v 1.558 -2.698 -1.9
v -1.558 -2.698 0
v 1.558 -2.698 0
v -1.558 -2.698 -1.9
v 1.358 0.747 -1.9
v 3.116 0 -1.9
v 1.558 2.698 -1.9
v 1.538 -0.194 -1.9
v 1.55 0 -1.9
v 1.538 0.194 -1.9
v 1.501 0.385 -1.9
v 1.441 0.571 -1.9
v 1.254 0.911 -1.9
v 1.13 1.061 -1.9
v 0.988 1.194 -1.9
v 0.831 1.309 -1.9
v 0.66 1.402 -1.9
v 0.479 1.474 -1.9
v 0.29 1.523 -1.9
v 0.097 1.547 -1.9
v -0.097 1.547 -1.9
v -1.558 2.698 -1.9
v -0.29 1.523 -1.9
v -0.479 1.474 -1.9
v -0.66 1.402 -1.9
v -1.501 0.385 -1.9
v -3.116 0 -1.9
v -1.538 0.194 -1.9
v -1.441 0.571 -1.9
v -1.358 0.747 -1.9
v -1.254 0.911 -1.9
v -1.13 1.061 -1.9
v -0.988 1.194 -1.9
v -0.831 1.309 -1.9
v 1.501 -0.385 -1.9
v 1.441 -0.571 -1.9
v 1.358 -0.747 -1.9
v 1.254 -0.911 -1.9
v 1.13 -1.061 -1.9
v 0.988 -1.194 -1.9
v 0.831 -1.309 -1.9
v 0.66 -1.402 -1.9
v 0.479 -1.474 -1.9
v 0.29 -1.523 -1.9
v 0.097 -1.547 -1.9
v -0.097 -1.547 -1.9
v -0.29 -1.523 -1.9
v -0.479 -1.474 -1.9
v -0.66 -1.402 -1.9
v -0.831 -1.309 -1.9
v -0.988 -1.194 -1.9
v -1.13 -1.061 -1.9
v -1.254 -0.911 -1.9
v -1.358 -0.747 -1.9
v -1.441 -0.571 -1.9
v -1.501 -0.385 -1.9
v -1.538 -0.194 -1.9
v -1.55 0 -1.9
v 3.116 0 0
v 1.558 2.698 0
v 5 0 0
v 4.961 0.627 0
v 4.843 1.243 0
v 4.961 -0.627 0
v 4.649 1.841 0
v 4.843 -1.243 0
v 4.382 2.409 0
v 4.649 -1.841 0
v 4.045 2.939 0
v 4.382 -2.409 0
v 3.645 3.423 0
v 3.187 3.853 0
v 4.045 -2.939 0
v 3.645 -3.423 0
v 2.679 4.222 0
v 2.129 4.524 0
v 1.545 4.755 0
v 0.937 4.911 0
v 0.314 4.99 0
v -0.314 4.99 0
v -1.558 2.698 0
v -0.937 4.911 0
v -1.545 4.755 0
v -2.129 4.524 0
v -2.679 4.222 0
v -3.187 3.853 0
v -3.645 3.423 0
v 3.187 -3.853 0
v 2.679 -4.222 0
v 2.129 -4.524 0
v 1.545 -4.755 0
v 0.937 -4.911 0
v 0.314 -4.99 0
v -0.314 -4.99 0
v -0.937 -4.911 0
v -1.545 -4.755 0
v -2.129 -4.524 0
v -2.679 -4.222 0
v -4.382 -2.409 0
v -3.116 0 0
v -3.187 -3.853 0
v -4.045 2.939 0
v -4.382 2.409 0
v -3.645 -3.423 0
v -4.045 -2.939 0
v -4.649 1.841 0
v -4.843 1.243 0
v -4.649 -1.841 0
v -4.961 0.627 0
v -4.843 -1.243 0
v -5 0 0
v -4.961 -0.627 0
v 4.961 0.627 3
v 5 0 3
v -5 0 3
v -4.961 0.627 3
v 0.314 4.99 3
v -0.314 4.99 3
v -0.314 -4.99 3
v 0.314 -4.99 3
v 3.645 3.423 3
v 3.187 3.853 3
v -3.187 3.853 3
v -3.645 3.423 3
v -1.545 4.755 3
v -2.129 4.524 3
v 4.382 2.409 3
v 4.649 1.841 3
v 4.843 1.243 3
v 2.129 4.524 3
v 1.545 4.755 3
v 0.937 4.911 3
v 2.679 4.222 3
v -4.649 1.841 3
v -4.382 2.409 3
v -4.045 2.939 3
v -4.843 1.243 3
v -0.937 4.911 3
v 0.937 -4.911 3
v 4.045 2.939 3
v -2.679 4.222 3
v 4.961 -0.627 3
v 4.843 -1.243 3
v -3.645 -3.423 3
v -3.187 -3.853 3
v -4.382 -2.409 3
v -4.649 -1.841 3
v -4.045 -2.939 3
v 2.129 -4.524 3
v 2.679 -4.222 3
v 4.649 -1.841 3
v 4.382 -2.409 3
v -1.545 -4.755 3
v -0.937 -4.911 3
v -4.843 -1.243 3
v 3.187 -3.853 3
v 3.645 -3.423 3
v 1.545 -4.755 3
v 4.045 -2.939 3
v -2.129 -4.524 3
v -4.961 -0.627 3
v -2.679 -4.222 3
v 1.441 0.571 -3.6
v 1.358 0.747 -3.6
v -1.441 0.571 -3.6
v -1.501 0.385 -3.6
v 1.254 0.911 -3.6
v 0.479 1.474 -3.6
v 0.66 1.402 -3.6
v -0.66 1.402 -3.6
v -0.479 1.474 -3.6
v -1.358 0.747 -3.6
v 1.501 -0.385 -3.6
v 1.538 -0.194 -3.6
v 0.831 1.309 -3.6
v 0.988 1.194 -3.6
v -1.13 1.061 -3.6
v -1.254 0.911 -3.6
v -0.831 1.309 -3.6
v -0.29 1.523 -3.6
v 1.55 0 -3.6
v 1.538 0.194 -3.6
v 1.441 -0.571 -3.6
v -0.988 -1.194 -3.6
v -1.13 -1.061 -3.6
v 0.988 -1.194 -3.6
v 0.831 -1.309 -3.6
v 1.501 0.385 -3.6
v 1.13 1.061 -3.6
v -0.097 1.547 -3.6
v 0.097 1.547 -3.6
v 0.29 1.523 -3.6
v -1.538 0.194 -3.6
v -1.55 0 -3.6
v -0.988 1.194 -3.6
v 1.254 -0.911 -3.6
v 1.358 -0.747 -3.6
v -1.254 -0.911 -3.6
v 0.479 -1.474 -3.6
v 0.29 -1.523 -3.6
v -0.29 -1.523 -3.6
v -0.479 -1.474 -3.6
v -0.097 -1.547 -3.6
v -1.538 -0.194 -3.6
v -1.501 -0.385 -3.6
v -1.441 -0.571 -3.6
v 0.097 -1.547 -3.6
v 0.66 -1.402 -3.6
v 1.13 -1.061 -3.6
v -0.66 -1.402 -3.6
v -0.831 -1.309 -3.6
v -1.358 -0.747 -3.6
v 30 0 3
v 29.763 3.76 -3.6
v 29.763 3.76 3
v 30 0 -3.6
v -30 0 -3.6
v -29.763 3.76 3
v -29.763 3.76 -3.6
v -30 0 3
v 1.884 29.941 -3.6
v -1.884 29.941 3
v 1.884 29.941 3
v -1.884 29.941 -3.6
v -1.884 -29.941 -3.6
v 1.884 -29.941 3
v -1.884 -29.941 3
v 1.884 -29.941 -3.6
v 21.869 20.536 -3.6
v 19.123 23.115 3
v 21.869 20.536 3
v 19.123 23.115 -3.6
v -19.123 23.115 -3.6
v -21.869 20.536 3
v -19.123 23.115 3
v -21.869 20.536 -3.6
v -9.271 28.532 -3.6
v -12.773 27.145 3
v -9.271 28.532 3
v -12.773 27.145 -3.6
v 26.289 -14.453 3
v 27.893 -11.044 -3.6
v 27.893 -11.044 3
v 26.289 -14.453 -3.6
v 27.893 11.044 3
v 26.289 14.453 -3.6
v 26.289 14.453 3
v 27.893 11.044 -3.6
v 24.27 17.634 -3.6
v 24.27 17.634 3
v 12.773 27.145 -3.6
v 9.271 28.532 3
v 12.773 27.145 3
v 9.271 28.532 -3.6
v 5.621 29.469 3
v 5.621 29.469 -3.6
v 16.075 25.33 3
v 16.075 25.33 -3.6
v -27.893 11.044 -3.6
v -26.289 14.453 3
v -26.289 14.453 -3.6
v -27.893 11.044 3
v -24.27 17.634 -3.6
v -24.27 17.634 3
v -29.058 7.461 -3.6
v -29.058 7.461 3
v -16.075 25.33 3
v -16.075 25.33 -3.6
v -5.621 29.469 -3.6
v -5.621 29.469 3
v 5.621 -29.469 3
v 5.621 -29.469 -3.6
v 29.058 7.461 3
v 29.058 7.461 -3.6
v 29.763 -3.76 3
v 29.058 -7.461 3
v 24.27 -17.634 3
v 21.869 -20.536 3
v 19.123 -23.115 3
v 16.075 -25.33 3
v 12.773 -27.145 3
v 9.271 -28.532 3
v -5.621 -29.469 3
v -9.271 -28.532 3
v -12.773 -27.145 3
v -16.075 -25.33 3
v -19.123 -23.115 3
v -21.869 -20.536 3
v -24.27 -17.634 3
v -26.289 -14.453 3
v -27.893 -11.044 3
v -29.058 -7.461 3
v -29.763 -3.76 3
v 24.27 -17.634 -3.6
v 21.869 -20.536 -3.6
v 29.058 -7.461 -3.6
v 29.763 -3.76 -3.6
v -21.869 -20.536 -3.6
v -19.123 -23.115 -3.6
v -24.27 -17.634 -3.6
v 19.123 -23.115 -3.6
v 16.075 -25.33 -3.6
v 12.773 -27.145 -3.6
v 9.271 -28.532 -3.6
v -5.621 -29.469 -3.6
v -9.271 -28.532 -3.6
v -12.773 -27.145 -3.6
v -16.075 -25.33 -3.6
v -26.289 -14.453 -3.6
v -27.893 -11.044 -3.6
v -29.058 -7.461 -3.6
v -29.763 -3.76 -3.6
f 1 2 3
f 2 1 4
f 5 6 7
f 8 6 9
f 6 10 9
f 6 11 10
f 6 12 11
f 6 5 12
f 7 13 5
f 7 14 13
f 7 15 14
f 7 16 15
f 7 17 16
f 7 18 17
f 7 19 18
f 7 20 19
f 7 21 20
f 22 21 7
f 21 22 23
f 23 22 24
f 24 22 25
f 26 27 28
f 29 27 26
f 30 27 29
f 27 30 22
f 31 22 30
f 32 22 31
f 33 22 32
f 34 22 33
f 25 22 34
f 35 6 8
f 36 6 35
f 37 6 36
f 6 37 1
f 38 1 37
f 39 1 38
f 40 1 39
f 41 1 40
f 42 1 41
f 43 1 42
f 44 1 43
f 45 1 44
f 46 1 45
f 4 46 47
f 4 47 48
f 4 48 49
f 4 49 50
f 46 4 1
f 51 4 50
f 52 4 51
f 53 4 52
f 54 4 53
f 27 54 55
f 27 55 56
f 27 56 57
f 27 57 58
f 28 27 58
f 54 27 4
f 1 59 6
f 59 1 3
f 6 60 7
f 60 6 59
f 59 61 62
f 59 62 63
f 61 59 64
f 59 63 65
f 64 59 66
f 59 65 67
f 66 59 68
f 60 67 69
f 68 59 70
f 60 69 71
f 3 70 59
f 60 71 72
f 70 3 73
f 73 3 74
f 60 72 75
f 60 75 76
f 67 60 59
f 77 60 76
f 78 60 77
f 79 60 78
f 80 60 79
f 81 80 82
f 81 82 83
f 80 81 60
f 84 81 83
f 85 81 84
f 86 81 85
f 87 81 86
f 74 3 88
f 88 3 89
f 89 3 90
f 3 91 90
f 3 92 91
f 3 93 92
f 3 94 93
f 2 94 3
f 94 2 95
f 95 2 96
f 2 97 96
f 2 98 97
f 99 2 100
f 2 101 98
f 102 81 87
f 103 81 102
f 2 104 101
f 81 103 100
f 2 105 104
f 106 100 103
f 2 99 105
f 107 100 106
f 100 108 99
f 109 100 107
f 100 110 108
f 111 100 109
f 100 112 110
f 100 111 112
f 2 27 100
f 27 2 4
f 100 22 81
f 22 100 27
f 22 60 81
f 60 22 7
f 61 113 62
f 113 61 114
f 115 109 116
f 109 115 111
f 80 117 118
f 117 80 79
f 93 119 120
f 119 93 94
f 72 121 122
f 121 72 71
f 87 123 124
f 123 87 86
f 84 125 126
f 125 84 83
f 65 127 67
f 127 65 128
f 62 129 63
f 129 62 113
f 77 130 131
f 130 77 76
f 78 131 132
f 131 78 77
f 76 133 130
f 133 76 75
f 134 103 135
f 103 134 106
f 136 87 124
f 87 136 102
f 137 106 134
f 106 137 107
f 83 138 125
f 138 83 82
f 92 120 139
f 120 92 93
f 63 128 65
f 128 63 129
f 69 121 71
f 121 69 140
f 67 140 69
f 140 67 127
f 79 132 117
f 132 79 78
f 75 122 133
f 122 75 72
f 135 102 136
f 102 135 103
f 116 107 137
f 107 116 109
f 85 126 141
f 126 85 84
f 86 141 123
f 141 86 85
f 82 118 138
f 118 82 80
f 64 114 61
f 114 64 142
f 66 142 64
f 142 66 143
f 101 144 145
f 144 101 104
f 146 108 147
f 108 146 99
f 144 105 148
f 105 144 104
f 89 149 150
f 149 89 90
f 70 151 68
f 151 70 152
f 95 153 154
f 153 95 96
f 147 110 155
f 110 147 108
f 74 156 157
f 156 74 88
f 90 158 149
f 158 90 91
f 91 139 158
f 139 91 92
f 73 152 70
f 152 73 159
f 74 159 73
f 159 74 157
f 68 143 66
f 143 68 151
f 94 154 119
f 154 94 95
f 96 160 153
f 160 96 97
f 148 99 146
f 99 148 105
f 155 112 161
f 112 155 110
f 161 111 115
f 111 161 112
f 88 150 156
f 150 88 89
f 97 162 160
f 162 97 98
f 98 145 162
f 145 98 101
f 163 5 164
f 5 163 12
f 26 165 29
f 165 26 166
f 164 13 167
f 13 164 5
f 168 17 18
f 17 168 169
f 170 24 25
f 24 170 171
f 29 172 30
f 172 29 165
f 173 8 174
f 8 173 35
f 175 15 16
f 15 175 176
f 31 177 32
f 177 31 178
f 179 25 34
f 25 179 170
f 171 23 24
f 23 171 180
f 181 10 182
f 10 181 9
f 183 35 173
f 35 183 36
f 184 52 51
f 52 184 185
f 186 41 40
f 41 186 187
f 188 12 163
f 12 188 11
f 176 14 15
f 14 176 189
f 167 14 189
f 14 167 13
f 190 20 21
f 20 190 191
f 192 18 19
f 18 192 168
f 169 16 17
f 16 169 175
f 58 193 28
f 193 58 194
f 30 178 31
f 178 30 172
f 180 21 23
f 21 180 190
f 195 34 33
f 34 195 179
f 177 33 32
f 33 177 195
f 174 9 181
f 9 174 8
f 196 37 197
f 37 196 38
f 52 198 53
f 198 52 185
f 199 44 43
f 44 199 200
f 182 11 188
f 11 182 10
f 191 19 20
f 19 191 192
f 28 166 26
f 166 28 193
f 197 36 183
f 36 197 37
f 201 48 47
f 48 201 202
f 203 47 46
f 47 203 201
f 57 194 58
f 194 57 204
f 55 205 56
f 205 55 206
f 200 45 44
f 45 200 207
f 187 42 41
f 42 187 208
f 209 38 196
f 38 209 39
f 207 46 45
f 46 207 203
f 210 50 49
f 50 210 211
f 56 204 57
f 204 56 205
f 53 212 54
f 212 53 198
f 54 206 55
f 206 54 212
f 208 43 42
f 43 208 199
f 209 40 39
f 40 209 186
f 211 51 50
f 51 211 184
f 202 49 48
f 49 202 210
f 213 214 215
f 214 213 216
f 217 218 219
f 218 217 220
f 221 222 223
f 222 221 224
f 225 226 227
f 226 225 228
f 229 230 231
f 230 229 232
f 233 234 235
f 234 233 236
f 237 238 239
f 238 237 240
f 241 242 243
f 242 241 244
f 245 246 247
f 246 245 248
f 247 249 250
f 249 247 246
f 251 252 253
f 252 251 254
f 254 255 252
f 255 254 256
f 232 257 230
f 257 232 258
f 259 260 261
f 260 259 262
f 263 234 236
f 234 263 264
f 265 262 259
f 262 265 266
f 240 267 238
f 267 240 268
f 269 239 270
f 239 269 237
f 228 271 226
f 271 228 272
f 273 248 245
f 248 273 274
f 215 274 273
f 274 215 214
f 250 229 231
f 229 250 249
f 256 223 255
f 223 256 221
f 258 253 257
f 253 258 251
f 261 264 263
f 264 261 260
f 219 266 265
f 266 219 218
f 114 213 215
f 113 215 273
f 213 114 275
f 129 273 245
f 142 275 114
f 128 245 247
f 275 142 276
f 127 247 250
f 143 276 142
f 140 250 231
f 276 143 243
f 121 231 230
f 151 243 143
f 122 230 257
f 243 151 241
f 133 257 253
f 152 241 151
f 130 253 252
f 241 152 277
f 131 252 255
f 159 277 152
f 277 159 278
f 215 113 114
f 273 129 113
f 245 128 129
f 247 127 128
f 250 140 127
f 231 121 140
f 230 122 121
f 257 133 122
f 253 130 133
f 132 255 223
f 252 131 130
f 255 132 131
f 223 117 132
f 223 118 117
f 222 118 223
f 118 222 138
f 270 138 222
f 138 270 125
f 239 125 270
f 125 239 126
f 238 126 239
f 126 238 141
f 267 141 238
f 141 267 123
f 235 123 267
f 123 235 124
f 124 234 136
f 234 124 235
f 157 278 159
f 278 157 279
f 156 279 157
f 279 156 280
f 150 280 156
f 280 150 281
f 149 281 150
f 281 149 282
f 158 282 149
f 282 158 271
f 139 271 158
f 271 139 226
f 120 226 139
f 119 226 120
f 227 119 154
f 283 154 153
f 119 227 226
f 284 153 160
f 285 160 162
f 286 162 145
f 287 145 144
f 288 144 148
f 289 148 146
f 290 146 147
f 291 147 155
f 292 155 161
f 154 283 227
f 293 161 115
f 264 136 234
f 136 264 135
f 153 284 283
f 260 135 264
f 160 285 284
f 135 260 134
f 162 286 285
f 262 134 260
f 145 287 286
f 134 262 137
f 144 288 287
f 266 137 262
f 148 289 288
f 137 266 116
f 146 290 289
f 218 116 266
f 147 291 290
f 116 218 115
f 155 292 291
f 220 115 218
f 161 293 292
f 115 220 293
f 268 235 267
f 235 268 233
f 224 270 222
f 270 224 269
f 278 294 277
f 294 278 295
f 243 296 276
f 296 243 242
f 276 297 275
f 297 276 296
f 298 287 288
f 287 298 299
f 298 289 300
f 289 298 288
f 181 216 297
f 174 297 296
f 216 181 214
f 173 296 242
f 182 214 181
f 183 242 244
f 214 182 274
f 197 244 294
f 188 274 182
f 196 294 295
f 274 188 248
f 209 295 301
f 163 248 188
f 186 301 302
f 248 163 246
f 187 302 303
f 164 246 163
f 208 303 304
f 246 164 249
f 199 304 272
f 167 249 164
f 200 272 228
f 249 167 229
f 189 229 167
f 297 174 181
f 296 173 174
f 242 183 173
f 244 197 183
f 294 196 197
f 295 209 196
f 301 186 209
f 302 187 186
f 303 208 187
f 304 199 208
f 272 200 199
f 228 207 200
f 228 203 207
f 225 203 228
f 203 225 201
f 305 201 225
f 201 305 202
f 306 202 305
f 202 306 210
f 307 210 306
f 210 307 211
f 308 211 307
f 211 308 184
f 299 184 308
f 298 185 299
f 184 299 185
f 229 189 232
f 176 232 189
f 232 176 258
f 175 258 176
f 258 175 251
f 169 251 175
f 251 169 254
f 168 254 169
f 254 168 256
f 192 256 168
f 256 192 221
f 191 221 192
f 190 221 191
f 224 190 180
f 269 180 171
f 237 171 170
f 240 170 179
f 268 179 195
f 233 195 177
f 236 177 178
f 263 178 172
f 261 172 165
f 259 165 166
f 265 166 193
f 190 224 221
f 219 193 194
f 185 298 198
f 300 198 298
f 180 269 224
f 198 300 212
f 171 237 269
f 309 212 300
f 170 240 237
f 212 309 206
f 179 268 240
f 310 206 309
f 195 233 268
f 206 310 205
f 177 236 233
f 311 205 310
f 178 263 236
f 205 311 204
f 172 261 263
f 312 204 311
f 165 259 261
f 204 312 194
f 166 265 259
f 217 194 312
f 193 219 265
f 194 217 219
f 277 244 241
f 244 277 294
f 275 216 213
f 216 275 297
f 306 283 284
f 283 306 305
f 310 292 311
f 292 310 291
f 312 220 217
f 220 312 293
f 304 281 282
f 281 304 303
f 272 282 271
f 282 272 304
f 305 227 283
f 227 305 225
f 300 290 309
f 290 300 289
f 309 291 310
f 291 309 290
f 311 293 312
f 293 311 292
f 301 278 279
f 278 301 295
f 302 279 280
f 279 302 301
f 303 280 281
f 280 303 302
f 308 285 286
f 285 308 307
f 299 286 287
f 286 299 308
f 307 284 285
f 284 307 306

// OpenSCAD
$fn = 50;


difference() {
	union() {
		translate(v = [0, 0, -3.6000000000]) {
			cylinder(h = 6.6000000000, r = 30.0000000000);
		}
	}
	union() {
		translate(v = [0, 0, 0]) {
			rotate(a = [0, 0, 0]) {
				difference() {
					union() {
						translate(v = [0, 0, -1.9000000000]) {
							linear_extrude(height = 1.9000000000) {
								polygon(points = [[3.1158000000, 0.0000000000], [1.5579000000, 2.6983619531], [-1.5579000000, 2.6983619531], [-3.1158000000, 0.0000000000], [-1.5579000000, -2.6983619531], [1.5579000000, -2.6983619531]]);
							}
						}
					}
					union();
				}
			}
		}
		#cylinder(h = 3, r = 5.0000000000);
		#translate(v = [0, 0, -100.0000000000]) {
			cylinder(h = 200, r = 1.5500000000);
		}
	}
}
